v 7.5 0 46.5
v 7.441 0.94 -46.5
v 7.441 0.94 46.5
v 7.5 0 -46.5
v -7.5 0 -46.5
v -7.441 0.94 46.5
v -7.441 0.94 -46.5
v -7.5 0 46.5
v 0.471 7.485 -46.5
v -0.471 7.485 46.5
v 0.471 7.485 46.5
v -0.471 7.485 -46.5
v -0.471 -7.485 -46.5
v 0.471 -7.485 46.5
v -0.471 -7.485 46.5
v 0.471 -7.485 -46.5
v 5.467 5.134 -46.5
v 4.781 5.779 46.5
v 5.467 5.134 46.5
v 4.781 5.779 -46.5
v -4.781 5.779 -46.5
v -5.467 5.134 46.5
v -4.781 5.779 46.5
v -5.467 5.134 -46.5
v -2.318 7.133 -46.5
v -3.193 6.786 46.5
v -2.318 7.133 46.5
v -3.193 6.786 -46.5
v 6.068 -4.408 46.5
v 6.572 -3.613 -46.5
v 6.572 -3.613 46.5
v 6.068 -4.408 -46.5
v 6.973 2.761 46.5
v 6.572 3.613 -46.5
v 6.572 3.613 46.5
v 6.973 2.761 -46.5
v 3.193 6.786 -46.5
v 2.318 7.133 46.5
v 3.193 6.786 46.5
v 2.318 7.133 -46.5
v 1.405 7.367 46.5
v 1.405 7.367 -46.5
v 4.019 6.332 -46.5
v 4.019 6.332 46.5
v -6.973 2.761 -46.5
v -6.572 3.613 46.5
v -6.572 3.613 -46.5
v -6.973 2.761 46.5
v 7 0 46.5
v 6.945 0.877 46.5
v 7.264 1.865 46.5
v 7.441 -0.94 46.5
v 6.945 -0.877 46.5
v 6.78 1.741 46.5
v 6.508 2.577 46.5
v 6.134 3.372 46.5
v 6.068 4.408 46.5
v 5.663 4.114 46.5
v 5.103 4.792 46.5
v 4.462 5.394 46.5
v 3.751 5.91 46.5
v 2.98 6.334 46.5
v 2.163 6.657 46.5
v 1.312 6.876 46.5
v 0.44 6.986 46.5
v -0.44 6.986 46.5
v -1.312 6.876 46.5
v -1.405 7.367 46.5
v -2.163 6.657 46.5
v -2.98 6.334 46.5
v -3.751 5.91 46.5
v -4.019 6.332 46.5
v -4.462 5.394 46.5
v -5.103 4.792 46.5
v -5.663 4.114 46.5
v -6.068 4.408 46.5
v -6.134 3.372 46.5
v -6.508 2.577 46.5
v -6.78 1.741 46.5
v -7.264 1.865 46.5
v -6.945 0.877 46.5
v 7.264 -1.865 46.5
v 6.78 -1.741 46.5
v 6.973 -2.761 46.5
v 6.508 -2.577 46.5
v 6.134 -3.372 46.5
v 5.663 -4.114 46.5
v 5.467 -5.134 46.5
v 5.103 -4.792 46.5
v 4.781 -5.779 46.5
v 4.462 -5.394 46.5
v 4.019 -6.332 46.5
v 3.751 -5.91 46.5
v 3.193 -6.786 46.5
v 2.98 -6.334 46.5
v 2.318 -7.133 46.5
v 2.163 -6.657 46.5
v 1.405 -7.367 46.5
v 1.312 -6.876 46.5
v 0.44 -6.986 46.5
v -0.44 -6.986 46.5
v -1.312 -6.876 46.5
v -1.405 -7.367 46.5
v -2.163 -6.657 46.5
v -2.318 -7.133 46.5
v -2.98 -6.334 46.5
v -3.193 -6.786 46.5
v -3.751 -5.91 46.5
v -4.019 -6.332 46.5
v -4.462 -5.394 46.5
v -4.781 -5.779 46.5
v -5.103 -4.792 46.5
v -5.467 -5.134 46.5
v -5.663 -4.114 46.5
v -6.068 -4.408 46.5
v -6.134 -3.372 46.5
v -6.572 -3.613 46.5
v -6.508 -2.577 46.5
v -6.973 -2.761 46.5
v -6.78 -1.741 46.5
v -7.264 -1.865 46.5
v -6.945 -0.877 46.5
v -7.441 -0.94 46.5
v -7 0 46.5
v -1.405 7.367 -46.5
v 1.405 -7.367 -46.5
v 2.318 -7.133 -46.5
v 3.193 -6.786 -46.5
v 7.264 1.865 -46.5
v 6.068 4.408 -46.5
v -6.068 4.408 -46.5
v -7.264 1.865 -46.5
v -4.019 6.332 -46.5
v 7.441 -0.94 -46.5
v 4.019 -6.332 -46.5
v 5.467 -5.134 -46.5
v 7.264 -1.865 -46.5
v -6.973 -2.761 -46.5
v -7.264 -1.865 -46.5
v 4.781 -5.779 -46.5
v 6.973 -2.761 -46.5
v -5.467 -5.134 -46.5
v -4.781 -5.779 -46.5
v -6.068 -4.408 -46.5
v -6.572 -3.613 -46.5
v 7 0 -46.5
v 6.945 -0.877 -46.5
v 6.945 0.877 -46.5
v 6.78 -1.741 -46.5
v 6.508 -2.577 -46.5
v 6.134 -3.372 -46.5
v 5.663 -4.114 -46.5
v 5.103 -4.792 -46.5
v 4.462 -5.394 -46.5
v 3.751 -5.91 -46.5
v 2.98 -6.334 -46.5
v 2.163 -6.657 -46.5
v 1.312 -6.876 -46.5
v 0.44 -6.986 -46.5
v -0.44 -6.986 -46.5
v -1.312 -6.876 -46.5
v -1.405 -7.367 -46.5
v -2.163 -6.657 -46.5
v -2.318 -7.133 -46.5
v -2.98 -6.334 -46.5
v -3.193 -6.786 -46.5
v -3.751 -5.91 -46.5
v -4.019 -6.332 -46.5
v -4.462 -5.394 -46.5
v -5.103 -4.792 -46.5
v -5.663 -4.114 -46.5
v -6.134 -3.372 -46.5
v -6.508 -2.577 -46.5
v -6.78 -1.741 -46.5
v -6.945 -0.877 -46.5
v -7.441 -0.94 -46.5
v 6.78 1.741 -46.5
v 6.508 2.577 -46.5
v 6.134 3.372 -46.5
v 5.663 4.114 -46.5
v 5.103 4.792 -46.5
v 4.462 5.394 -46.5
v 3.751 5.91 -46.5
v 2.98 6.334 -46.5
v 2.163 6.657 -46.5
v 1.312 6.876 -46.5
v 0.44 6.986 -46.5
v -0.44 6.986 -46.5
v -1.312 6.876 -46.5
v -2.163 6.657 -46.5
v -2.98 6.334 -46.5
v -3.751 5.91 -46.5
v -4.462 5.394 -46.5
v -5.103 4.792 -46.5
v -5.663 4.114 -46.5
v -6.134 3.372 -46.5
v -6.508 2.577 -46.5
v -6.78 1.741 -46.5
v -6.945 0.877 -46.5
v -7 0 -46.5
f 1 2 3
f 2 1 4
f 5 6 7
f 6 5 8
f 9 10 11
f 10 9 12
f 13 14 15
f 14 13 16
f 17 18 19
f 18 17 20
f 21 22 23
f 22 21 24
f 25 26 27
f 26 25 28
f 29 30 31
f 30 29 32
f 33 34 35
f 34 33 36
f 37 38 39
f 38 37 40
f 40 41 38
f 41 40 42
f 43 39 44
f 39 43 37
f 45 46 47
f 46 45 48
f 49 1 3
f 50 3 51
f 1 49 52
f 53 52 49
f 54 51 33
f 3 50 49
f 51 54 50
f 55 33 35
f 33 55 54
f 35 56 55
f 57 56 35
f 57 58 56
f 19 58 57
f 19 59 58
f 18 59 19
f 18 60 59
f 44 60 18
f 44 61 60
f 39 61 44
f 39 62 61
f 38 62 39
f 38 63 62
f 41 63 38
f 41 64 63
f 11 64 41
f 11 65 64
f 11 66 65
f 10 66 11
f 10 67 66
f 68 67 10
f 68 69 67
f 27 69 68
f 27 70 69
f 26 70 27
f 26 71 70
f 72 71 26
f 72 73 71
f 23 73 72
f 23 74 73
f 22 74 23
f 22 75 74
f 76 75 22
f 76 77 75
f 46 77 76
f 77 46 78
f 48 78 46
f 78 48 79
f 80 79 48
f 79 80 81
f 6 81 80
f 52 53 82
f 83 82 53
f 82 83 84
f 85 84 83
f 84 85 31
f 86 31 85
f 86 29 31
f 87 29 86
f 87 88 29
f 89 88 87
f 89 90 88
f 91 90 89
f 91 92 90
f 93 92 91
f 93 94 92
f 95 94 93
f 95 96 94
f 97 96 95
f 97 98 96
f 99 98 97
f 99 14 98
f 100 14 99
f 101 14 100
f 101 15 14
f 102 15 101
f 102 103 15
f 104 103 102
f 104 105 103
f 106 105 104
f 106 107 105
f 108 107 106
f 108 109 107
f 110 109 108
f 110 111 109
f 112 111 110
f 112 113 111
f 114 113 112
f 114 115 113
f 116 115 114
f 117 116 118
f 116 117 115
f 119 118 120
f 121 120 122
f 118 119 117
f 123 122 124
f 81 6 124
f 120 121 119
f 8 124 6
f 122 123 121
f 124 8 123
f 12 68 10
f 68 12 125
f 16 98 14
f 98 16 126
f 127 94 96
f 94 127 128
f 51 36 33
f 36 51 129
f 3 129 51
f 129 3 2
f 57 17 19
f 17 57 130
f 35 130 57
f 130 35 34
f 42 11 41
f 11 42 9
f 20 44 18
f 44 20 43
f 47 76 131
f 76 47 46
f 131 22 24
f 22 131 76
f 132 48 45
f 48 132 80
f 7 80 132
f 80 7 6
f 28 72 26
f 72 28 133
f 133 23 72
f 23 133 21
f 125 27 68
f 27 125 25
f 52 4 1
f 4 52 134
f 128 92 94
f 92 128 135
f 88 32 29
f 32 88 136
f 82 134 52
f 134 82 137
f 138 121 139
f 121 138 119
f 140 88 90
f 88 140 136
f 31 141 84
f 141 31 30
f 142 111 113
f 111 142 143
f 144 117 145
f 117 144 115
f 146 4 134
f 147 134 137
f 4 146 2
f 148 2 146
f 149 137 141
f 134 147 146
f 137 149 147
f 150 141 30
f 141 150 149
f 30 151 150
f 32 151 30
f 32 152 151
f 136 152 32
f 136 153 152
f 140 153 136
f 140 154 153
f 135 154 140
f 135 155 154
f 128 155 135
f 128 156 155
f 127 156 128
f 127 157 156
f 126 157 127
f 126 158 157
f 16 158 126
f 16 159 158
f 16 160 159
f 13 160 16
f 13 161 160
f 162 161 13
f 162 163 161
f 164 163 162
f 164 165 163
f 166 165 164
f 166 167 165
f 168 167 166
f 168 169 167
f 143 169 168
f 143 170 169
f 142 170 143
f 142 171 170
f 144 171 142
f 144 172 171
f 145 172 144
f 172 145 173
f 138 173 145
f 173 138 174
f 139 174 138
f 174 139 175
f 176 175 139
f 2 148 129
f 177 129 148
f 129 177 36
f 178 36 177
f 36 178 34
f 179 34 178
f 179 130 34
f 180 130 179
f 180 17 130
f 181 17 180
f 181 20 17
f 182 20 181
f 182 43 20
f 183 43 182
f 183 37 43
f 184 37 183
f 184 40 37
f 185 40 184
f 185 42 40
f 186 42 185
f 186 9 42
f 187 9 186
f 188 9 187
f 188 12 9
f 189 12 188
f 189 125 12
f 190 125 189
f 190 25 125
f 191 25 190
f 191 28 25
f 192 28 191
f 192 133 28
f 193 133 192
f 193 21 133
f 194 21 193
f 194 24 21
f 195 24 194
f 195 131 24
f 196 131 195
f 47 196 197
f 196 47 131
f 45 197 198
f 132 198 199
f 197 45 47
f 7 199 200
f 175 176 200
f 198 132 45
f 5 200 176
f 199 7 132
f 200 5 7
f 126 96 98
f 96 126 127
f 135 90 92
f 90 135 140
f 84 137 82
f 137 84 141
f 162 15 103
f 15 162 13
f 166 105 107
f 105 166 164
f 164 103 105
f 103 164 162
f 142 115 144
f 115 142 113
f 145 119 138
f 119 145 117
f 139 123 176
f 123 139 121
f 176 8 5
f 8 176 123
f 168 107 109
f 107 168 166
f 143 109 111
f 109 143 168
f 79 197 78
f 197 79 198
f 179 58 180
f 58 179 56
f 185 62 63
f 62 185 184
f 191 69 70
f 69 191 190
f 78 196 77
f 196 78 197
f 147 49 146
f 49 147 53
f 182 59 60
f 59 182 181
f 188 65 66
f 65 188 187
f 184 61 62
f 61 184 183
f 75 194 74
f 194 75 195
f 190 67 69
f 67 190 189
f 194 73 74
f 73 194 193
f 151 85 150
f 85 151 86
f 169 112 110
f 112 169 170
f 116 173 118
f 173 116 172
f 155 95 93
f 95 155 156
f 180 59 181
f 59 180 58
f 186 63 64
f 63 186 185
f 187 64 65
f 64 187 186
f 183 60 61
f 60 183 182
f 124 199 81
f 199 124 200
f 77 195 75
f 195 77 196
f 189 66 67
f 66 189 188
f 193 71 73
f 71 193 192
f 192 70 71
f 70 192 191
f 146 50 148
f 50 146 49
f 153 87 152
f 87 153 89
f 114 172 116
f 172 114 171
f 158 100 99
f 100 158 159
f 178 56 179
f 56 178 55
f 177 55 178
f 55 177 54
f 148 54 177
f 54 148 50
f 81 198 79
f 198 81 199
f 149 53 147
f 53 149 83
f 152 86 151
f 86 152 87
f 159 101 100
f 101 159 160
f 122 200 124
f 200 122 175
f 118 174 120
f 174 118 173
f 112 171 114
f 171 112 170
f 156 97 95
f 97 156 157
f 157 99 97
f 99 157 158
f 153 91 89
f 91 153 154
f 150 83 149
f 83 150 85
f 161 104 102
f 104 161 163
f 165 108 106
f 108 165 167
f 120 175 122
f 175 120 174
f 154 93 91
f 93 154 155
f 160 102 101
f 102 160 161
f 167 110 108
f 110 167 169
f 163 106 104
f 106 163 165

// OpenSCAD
$fn = 50;


difference() {
	union() {
		translate(v = [0, 0, -46.5000000000]) {
			cylinder(h = 93, r = 7.5000000000);
		}
	}
	union() {
		translate(v = [0, 0, -100.0000000000]) {
			cylinder(h = 200, r = 7);
		}
	}
}
